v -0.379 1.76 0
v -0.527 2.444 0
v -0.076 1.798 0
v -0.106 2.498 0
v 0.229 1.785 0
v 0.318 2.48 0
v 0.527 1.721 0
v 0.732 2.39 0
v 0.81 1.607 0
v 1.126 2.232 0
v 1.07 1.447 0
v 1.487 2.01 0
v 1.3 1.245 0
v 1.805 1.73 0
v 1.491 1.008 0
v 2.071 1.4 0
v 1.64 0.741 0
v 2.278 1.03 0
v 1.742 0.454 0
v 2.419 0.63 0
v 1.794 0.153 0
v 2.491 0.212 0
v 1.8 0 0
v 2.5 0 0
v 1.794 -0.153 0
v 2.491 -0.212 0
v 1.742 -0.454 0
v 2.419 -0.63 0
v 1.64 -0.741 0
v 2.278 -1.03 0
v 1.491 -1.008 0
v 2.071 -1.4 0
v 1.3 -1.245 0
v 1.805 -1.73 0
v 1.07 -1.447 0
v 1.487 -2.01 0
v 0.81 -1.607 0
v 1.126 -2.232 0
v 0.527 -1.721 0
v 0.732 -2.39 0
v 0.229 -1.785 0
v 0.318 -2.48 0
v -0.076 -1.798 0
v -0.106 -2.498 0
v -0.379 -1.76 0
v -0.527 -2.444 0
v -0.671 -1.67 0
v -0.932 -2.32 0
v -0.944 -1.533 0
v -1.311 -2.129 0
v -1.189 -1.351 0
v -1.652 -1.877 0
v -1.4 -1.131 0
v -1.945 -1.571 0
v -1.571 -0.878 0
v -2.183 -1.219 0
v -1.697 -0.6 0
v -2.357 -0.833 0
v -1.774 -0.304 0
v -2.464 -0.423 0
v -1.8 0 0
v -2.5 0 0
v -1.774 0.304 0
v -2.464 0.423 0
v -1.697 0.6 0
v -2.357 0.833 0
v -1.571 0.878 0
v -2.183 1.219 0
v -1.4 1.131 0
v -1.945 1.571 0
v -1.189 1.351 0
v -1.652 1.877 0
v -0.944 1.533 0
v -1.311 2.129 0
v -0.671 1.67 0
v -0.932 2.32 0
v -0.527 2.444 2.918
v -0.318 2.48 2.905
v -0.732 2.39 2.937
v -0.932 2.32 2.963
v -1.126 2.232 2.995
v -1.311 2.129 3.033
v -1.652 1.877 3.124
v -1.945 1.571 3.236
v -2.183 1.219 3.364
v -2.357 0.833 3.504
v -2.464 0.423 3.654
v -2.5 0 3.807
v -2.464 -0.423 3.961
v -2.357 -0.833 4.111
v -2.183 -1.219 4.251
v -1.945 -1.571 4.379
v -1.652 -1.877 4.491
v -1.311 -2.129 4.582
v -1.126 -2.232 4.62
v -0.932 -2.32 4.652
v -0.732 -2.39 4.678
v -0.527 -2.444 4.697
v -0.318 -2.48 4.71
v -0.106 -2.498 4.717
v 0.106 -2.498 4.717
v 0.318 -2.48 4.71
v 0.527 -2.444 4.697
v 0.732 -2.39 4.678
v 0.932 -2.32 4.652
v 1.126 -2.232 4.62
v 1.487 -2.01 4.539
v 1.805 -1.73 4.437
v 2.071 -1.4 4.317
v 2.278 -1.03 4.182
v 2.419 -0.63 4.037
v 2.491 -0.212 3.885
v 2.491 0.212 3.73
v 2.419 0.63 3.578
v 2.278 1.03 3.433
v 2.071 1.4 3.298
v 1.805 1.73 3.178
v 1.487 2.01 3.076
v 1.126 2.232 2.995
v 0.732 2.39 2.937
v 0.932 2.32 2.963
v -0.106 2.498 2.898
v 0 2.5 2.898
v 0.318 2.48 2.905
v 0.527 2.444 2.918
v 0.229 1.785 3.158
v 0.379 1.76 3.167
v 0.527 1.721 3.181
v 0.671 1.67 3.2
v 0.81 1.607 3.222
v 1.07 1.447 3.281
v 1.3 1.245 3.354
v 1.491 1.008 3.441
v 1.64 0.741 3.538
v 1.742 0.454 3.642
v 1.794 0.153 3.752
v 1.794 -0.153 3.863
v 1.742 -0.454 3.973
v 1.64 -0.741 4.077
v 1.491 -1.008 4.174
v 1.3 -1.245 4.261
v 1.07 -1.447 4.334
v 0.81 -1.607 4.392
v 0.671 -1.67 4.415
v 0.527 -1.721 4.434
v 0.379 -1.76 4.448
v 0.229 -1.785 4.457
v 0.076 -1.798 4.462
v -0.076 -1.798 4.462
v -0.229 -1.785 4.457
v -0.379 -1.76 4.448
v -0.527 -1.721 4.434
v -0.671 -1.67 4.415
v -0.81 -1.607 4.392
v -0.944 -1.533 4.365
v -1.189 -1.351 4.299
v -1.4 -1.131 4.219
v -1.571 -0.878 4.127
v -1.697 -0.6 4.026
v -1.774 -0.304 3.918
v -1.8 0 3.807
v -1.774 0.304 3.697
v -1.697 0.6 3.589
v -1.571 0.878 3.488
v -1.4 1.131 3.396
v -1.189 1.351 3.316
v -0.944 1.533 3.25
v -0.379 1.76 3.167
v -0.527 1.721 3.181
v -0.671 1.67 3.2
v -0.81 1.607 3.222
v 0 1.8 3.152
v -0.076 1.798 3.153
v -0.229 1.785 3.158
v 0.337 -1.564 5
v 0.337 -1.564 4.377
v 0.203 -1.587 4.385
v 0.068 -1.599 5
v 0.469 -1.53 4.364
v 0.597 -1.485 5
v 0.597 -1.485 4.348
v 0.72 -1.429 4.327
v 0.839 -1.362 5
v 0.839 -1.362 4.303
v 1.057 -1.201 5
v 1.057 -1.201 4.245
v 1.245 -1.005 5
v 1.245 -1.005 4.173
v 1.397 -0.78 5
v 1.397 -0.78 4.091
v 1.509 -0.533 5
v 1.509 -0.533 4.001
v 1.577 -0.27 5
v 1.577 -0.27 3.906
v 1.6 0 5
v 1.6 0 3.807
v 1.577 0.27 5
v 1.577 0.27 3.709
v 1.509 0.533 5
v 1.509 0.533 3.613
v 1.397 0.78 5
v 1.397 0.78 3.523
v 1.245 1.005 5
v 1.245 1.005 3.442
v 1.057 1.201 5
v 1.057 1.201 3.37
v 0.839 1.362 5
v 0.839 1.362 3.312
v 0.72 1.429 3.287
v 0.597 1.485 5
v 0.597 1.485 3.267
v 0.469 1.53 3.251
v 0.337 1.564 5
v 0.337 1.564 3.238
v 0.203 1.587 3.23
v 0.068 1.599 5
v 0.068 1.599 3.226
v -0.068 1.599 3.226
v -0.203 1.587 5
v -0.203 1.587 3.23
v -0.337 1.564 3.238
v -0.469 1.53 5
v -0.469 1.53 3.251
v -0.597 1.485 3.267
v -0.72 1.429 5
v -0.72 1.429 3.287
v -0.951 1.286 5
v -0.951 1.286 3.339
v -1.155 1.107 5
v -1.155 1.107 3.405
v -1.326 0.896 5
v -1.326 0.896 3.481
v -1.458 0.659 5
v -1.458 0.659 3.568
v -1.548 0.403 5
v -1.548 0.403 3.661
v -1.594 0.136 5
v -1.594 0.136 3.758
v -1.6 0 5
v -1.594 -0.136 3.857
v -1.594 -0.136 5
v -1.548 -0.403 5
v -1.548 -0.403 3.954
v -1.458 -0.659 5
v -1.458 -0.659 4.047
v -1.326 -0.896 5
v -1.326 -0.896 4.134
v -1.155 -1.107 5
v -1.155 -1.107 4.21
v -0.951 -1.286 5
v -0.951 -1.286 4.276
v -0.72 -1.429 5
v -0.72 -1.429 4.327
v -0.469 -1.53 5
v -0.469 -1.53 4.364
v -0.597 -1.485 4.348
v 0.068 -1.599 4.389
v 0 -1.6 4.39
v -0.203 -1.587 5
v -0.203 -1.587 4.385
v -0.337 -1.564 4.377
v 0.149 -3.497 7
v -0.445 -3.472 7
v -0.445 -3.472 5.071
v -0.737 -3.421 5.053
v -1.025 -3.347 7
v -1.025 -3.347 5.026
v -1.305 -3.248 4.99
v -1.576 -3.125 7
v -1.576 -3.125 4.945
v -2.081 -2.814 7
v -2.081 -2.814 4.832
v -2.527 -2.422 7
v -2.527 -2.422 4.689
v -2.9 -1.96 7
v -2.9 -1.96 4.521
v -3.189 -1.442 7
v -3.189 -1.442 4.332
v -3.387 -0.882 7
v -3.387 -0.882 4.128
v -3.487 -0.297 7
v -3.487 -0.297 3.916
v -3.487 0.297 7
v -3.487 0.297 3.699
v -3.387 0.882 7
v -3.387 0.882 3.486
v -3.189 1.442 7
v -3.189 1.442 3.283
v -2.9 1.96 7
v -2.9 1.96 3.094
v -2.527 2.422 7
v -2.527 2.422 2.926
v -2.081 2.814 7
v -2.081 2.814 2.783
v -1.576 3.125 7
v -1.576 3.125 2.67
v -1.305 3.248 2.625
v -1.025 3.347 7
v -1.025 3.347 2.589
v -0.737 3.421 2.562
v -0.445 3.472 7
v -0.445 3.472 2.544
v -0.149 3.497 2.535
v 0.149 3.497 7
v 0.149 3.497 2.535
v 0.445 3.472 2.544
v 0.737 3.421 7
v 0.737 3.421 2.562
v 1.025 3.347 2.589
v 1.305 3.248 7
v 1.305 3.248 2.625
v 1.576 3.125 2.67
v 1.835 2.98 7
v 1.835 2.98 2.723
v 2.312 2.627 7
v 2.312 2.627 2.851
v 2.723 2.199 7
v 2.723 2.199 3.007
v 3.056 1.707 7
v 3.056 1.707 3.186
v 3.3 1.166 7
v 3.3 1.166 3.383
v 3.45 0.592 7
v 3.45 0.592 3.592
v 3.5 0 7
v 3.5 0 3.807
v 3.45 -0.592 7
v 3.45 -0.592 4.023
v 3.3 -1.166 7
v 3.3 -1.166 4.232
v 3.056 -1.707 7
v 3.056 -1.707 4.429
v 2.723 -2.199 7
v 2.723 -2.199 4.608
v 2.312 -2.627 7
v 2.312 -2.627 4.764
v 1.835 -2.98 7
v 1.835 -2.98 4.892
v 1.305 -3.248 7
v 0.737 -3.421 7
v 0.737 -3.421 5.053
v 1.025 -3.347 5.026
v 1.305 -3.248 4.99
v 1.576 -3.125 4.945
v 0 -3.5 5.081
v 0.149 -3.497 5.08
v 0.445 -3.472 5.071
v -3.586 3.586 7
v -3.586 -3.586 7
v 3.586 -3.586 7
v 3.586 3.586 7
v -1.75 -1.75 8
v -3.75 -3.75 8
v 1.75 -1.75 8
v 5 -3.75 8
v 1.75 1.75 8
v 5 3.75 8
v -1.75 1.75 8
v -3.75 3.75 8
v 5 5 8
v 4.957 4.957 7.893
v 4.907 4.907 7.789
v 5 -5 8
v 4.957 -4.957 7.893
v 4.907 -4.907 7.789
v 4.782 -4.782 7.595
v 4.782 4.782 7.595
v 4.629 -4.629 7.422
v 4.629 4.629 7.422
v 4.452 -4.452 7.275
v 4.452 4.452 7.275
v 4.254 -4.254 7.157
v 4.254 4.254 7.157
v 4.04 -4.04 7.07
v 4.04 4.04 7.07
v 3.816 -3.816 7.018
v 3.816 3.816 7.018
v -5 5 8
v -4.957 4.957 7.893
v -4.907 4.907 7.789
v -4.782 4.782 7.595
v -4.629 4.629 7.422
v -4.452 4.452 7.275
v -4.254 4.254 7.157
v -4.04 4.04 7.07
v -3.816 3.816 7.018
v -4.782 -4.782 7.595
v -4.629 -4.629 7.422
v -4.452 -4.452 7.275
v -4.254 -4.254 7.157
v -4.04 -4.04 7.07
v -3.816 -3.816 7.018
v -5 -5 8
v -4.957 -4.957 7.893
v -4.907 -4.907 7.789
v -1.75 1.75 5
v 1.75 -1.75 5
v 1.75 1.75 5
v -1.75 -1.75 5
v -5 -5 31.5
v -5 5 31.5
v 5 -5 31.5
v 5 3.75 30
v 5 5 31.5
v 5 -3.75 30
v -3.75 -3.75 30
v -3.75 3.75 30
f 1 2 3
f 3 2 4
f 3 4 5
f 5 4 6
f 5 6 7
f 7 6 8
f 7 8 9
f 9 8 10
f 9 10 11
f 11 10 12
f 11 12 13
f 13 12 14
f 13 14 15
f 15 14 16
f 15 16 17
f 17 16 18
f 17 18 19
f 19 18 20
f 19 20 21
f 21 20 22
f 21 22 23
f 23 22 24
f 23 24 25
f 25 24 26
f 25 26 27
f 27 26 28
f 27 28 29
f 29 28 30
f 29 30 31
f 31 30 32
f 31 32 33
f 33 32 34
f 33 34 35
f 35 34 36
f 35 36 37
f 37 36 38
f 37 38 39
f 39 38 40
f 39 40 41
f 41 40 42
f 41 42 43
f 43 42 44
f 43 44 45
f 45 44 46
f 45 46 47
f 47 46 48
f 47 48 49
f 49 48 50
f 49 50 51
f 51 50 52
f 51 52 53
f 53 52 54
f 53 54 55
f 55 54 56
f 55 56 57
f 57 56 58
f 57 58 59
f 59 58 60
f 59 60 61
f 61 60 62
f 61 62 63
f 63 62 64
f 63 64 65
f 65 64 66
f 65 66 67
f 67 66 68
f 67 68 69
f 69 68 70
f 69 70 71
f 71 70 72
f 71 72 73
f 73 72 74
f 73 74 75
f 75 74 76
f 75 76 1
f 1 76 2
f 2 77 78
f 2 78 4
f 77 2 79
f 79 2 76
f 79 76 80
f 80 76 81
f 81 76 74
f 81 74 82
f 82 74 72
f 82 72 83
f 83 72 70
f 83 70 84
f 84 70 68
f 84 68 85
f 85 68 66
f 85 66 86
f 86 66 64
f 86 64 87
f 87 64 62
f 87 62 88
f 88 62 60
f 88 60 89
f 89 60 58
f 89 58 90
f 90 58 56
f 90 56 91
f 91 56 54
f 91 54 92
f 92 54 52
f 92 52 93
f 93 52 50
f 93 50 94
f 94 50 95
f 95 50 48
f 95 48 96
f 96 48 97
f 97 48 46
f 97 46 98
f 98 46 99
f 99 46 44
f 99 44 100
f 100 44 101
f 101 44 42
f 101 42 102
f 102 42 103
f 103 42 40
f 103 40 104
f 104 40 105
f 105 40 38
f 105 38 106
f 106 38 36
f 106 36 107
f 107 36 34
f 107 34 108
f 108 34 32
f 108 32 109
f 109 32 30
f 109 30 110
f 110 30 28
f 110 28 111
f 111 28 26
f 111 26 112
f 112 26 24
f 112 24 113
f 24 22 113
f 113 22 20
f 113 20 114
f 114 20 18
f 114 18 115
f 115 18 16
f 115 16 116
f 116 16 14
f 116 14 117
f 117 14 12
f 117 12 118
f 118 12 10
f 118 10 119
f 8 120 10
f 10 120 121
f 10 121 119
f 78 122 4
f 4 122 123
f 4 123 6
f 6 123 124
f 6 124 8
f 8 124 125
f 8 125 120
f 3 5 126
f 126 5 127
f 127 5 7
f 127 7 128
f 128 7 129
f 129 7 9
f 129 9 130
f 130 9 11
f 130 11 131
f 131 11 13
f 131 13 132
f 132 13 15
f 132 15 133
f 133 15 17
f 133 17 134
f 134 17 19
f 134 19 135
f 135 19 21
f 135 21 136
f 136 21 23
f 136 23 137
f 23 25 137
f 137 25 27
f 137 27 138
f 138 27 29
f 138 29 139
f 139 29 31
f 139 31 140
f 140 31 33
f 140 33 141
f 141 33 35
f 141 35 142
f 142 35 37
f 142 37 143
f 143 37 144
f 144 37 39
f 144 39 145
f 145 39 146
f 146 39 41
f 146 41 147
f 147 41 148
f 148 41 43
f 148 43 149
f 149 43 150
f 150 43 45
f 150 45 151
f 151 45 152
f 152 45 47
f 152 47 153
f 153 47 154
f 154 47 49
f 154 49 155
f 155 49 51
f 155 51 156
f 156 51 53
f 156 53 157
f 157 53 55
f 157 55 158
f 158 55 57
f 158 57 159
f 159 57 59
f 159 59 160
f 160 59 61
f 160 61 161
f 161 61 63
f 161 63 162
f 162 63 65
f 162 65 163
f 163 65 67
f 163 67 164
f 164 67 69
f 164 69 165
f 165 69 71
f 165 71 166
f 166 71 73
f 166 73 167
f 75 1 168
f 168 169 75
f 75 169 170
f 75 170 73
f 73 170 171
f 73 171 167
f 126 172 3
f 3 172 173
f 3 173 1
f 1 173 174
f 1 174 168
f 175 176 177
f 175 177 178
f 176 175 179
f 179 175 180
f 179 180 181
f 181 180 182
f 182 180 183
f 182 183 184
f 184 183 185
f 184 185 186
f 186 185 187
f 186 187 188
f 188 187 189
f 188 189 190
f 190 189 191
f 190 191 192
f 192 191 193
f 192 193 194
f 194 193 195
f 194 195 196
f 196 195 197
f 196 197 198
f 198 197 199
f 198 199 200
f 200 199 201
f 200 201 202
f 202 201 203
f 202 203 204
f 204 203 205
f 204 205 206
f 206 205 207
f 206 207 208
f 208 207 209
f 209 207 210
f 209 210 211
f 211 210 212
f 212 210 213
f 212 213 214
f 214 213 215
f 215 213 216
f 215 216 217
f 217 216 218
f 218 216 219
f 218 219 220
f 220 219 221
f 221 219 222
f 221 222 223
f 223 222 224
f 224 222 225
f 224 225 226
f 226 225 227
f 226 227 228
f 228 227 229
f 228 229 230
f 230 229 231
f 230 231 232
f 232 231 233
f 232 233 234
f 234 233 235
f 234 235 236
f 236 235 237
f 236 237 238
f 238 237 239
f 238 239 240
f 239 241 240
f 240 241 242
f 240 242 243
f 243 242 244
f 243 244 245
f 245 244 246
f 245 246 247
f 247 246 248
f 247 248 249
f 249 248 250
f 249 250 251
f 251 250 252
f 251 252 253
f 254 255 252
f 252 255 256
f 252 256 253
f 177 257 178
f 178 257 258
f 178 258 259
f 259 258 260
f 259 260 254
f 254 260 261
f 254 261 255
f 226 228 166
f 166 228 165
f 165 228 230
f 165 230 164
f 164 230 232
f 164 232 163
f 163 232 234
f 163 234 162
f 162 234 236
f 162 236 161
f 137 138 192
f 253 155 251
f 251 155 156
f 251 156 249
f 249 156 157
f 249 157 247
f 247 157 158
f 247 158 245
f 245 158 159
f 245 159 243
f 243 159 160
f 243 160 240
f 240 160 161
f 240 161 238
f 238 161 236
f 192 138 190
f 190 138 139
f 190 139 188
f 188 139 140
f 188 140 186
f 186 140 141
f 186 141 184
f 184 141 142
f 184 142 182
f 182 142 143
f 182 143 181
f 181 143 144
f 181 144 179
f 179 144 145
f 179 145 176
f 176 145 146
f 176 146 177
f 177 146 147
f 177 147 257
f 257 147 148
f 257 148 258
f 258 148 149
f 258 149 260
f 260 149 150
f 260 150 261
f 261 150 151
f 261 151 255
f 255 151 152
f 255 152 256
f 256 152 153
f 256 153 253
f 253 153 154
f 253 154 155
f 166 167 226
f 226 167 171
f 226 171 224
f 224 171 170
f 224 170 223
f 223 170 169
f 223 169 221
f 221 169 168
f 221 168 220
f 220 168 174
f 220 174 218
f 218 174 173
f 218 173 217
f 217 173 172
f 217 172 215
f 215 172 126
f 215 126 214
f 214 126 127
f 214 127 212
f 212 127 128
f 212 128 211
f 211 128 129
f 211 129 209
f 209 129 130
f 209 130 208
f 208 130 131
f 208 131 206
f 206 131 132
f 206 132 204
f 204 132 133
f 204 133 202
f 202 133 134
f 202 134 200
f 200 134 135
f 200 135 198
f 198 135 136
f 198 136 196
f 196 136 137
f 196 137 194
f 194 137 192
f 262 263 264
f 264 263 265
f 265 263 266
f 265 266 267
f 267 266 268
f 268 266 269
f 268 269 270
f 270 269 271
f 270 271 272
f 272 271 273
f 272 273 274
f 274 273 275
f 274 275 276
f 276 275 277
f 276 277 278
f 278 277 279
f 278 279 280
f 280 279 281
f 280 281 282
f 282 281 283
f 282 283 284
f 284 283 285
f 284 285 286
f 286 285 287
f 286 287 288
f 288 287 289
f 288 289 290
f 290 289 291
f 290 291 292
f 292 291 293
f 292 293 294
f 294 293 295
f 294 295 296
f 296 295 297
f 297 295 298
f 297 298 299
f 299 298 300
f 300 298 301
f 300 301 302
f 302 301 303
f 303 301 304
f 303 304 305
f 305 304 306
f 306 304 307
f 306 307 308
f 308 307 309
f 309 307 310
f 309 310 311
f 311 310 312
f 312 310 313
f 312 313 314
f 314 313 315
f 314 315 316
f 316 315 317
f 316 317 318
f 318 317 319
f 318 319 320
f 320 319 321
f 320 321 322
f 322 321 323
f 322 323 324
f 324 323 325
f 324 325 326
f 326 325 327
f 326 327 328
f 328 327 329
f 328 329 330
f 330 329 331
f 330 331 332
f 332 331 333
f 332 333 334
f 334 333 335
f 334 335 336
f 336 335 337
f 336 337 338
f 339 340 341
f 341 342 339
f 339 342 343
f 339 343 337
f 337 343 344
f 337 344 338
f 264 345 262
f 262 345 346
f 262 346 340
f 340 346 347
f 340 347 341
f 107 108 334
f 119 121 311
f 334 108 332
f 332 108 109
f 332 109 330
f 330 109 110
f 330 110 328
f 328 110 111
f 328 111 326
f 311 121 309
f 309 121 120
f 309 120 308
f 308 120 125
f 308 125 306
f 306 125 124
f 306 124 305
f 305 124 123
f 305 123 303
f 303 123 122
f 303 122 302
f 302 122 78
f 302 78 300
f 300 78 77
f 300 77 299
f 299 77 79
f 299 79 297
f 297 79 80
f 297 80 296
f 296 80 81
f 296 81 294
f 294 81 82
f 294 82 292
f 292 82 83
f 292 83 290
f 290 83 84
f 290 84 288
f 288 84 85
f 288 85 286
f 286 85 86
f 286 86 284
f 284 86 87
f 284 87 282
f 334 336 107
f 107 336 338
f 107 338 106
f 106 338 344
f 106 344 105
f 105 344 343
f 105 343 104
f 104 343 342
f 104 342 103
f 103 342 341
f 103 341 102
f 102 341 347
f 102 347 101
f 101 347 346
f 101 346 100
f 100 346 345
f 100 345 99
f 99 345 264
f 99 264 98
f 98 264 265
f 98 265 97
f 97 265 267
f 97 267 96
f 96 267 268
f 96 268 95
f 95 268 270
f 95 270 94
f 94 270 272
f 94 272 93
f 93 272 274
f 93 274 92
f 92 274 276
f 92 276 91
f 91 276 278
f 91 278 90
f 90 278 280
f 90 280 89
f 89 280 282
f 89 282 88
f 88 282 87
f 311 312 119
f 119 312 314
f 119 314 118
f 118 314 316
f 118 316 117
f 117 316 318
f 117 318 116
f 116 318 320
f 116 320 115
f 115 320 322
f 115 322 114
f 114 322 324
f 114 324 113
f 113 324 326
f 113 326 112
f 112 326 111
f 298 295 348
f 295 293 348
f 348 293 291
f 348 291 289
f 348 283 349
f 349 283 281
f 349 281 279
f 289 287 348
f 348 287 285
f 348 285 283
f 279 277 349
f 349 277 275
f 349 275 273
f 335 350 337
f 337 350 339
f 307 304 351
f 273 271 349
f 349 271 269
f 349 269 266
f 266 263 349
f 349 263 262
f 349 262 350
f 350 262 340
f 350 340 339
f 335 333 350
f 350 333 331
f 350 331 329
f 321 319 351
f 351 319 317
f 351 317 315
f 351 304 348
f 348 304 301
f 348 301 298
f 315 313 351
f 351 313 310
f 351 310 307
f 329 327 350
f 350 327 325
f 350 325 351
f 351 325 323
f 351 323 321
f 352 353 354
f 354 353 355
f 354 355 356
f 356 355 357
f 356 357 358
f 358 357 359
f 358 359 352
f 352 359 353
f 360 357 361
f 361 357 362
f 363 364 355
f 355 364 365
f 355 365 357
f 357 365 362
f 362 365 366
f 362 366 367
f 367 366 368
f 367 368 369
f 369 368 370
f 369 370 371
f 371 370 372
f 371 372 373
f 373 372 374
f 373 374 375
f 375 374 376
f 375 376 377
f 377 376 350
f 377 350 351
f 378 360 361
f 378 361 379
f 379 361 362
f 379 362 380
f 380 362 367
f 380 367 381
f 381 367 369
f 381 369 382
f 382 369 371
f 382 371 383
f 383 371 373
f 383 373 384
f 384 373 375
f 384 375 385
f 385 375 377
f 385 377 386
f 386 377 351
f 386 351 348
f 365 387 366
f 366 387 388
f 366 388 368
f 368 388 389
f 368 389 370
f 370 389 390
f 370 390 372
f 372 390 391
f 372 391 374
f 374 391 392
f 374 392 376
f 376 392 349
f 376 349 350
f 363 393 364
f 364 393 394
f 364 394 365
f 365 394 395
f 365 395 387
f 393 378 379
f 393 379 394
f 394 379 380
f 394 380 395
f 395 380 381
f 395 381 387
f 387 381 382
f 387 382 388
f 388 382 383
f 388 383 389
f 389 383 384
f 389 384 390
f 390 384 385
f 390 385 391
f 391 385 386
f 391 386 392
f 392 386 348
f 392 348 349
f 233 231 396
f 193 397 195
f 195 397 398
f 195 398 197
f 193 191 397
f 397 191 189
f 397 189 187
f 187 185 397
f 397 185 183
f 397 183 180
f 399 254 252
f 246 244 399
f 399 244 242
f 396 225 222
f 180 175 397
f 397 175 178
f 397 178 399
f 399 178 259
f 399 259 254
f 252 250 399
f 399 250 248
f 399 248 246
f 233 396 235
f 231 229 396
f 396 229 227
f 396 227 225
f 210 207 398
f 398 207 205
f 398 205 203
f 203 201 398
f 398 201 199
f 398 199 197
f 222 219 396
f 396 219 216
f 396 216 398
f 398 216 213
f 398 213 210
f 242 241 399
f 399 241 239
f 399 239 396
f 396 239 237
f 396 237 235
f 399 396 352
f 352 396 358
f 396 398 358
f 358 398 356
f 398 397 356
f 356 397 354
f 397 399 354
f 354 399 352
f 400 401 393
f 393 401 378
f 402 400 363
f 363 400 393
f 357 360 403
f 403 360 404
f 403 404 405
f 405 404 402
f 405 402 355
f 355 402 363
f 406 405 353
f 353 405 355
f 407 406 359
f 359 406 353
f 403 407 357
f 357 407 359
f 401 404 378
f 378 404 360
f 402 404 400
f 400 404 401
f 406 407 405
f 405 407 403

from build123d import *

# Parameters (mm, degrees)
CROQUIS1_R              = 2.5
CROQUIS1_R_2            = 1.8
SALIENTE_EXTRUIR1_DEPTH = 7
SALIENTE_EXTRUIR2_REACH = 9.842
CROQUIS3_R              = 3.5
CROQUIS3_R_2            = 1.6
CROQUIS4_W              = 10
CROQUIS4_H              = 10
SALIENTE_EXTRUIR3_DEPTH = 1
REDONDEO2_R             = 1.5
CROQUIS7_W              = 3.5
CROQUIS7_H              = 3.5
CORTAR_EXTRUIR1_DEPTH   = 3
SALIENTE_EXTRUIR4_DEPTH = 22
CROQUIS9_W              = 10
CROQUIS9_H              = 10
SALIENTE_EXTRUIR5_DEPTH = 1.5


with BuildPart() as part:
    # Croquis1 → Saliente-Extruir1 (new body)
    with BuildSketch(Plane.XY):
        Circle(CROQUIS1_R)
        Circle(CROQUIS1_R_2, mode=Mode.SUBTRACT)
    extrude(amount=SALIENTE_EXTRUIR1_DEPTH)

    # Saliente-Extruir2: up to this plane
    saliente_extruir2_end = Plane(origin=(0, 1.223696204, 3.362077689), z_dir=(0, -0.34202014332567576, -0.9396926207859059))
    # Croquis3 → Saliente-Extruir2 (add, up to the surface)
    with BuildSketch(Plane.XY.offset(7), mode=Mode.PRIVATE) as saliente_extruir2_sk1:
        Circle(CROQUIS3_R)
        Circle(CROQUIS3_R_2, mode=Mode.SUBTRACT)
    saliente_extruir2_tool1 = split(extrude(saliente_extruir2_sk1.sketch, amount=-SALIENTE_EXTRUIR2_REACH, mode=Mode.PRIVATE), bisect_by=saliente_extruir2_end, keep=Keep.BOTH, mode=Mode.PRIVATE)
    add(saliente_extruir2_tool1.solids().sort_by_distance((-3.401005, 0, 7))[0])

    # Croquis4 → Saliente-Extruir3 (add)
    with BuildSketch(Plane.XY.offset(7)):
        Rectangle(CROQUIS4_W, CROQUIS4_H)
    extrude(amount=SALIENTE_EXTRUIR3_DEPTH)

    # Redondeo2
    # the kernel refuses this fillet: 1.5 mm, written as the material it takes off along each edge
    with BuildSketch(Plane(origin=(-5, -8.535533906, 7), x_dir=(0, 0, 1), z_dir=(0, 1, 0)), Plane(origin=(8.535533906, -5, 7), x_dir=(0, 0, 1), z_dir=(-1, 0, 0)), Plane(origin=(5, 8.535533906, 7), x_dir=(0, 0, 1), z_dir=(0, -1, 0))) as redondeo2_piece_1:
        with BuildLine():
            CenterArc((1.5, 1.414213562), REDONDEO2_R, 180, 70.528779366)
            Line((0, 1.414213562), (-0.03, 1.414213562))
            Line((-0.03, 1.414213562), (-0.03, 0))
            Line((-0.03, 0), (0, -0.03))
            ThreePointArc((0, -0.03), (0.5, -0.03), (0.99, -0.028284271))
            Line((0.99, -0.028284271), (1, 0))
        make_face()
    extrude(amount=17.071067812, mode=Mode.SUBTRACT)
    with BuildSketch(Plane(origin=(-8.535533906, 5, 7), x_dir=(0, -1, 0), z_dir=(1, 0, 0))) as redondeo2_piece_2:
        with BuildLine():
            CenterArc((1.414213562, -1.5), REDONDEO2_R, 90, 70.528779366)
            Line((0, -1), (-0.028284271, -0.99))
            ThreePointArc((-0.028284271, -0.99), (-0.03, -0.5), (-0.03, 0))
            Line((-0.03, 0), (0, 0.03))
            Line((0, 0.03), (1.414213562, 0.03))
            Line((1.414213562, 0.03), (1.414213562, 0))
        make_face()
    extrude(amount=17.071067812, mode=Mode.SUBTRACT)

    # Croquis7 → Cortar-Extruir1 (cut)
    with BuildSketch(Plane.XY.offset(8)):
        Rectangle(CROQUIS7_W, CROQUIS7_H)
    extrude(amount=-CORTAR_EXTRUIR1_DEPTH, mode=Mode.SUBTRACT)

    # Croquis8 → Saliente-Extruir4 (add)
    with BuildSketch(Plane.XY.offset(8)):
        Polygon((3.75, 5), (-5, 5), (-5, -5), (3.75, -5), (5, -5), (5, -3.75), (3.75, -3.75), (-3.75, -3.75), (-3.75, 3.75), (3.75, 3.75), (5, 3.75), (5, 5), align=None)
    extrude(amount=SALIENTE_EXTRUIR4_DEPTH)

    # Croquis9 → Saliente-Extruir5 (add)
    with BuildSketch(Plane.XY.offset(30)):
        Rectangle(CROQUIS9_W, CROQUIS9_H)
    extrude(amount=SALIENTE_EXTRUIR5_DEPTH)


solid = part.part
